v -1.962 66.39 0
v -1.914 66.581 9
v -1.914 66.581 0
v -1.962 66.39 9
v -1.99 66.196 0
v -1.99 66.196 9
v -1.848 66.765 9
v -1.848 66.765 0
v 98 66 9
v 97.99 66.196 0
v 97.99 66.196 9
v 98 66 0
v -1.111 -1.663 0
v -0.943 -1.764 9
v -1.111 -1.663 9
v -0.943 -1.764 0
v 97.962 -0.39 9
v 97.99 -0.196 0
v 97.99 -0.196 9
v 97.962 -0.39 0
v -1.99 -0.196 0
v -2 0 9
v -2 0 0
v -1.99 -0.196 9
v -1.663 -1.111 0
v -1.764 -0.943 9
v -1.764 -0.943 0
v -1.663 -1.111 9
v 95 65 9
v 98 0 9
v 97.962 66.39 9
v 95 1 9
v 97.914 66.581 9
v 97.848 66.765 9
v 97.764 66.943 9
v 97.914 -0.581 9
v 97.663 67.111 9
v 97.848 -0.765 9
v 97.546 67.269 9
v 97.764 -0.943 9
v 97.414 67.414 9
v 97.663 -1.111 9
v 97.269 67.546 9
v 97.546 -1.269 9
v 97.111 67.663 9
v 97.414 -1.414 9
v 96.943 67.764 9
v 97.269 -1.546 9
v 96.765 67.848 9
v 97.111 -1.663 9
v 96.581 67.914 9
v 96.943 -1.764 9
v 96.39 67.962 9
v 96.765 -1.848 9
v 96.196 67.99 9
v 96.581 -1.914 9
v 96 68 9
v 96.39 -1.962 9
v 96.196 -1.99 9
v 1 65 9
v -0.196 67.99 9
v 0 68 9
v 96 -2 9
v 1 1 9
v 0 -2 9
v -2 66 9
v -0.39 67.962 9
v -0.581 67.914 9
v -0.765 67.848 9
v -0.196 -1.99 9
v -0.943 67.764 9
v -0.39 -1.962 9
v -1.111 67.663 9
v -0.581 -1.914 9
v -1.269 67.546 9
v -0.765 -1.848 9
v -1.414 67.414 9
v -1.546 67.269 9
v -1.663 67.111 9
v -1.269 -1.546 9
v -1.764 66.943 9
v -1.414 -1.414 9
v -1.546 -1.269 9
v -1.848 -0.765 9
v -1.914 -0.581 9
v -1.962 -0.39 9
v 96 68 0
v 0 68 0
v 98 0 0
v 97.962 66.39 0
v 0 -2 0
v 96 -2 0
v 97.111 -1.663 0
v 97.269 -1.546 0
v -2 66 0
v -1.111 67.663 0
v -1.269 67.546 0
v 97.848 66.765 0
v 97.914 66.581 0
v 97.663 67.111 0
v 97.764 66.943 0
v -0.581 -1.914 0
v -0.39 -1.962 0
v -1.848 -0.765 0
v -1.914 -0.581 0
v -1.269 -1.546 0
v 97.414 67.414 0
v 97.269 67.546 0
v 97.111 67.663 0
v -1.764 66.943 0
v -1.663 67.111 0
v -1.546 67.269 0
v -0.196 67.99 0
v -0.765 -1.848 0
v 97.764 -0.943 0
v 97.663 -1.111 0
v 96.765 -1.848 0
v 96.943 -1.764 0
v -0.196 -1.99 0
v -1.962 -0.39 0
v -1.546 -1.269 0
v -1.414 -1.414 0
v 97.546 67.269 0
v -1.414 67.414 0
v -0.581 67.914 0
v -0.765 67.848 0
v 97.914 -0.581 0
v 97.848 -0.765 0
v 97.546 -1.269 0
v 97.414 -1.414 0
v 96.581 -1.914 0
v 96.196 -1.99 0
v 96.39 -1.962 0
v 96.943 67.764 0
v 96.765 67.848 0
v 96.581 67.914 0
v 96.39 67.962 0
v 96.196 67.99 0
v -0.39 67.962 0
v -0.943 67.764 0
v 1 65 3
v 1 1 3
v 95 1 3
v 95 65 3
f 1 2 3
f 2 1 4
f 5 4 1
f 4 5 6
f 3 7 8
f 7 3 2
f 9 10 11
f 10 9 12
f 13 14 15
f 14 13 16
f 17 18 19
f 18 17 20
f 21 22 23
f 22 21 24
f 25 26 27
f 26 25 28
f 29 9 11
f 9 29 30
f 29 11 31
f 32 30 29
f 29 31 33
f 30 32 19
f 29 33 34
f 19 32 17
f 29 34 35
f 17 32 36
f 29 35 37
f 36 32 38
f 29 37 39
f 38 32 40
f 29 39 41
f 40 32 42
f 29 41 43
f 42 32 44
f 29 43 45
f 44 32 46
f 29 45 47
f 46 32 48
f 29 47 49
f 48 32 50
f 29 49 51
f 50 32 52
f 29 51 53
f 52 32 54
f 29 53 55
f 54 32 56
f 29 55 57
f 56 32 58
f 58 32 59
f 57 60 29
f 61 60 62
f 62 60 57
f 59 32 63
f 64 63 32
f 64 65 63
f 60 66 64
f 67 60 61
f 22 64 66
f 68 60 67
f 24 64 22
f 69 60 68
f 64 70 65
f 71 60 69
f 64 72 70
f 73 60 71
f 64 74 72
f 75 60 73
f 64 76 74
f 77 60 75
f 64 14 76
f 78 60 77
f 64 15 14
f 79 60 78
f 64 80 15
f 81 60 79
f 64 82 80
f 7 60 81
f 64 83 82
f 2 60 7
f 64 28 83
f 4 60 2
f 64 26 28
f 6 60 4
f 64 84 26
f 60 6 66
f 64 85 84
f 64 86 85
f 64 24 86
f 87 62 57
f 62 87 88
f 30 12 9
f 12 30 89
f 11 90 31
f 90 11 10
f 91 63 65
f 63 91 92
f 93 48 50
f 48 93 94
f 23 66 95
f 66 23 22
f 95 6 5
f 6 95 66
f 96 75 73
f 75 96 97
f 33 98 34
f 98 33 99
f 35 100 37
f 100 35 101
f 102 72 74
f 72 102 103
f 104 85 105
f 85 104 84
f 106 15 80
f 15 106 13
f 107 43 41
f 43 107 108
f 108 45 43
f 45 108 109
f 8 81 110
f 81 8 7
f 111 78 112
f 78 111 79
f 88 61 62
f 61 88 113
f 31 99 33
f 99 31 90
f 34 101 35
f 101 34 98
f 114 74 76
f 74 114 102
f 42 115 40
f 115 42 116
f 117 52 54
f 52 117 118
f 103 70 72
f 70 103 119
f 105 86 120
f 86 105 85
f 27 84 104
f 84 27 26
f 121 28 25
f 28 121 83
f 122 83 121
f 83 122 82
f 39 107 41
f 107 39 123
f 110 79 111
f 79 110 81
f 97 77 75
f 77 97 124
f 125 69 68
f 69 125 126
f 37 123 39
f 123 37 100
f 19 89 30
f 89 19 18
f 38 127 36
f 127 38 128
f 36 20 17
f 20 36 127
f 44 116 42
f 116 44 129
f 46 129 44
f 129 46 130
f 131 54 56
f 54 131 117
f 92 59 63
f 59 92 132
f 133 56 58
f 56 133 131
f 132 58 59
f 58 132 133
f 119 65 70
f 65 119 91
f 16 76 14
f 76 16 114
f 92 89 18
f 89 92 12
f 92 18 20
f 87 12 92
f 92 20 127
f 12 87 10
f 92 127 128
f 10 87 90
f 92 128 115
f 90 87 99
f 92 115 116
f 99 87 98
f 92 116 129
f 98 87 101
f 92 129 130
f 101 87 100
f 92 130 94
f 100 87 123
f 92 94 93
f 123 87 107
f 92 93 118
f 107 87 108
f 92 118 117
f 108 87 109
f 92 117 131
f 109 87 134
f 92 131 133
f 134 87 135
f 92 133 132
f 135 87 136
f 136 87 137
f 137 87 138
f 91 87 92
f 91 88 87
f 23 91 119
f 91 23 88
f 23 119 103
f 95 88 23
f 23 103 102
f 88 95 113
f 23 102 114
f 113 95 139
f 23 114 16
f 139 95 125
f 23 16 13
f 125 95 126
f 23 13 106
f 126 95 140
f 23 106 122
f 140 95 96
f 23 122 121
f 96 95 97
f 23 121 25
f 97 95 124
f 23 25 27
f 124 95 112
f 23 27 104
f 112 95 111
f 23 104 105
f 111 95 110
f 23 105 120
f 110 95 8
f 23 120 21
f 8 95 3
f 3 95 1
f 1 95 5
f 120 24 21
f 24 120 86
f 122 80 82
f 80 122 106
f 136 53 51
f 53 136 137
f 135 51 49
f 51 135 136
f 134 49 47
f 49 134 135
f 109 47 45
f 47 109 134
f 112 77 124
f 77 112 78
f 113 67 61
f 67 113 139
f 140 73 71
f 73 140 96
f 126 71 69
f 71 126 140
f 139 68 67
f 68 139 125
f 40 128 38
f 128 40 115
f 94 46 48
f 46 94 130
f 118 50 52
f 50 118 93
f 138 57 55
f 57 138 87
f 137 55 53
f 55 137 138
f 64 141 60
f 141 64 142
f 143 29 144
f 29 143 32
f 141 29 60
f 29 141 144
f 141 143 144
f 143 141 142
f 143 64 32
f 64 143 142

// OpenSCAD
difference(){
  minkowski(){
    cube([100-4,70-4,9-1]);
    cylinder(r=2,h=1,$fn=64);
  }
  translate([1,1,3])
    cube([94,64,6]);
}
